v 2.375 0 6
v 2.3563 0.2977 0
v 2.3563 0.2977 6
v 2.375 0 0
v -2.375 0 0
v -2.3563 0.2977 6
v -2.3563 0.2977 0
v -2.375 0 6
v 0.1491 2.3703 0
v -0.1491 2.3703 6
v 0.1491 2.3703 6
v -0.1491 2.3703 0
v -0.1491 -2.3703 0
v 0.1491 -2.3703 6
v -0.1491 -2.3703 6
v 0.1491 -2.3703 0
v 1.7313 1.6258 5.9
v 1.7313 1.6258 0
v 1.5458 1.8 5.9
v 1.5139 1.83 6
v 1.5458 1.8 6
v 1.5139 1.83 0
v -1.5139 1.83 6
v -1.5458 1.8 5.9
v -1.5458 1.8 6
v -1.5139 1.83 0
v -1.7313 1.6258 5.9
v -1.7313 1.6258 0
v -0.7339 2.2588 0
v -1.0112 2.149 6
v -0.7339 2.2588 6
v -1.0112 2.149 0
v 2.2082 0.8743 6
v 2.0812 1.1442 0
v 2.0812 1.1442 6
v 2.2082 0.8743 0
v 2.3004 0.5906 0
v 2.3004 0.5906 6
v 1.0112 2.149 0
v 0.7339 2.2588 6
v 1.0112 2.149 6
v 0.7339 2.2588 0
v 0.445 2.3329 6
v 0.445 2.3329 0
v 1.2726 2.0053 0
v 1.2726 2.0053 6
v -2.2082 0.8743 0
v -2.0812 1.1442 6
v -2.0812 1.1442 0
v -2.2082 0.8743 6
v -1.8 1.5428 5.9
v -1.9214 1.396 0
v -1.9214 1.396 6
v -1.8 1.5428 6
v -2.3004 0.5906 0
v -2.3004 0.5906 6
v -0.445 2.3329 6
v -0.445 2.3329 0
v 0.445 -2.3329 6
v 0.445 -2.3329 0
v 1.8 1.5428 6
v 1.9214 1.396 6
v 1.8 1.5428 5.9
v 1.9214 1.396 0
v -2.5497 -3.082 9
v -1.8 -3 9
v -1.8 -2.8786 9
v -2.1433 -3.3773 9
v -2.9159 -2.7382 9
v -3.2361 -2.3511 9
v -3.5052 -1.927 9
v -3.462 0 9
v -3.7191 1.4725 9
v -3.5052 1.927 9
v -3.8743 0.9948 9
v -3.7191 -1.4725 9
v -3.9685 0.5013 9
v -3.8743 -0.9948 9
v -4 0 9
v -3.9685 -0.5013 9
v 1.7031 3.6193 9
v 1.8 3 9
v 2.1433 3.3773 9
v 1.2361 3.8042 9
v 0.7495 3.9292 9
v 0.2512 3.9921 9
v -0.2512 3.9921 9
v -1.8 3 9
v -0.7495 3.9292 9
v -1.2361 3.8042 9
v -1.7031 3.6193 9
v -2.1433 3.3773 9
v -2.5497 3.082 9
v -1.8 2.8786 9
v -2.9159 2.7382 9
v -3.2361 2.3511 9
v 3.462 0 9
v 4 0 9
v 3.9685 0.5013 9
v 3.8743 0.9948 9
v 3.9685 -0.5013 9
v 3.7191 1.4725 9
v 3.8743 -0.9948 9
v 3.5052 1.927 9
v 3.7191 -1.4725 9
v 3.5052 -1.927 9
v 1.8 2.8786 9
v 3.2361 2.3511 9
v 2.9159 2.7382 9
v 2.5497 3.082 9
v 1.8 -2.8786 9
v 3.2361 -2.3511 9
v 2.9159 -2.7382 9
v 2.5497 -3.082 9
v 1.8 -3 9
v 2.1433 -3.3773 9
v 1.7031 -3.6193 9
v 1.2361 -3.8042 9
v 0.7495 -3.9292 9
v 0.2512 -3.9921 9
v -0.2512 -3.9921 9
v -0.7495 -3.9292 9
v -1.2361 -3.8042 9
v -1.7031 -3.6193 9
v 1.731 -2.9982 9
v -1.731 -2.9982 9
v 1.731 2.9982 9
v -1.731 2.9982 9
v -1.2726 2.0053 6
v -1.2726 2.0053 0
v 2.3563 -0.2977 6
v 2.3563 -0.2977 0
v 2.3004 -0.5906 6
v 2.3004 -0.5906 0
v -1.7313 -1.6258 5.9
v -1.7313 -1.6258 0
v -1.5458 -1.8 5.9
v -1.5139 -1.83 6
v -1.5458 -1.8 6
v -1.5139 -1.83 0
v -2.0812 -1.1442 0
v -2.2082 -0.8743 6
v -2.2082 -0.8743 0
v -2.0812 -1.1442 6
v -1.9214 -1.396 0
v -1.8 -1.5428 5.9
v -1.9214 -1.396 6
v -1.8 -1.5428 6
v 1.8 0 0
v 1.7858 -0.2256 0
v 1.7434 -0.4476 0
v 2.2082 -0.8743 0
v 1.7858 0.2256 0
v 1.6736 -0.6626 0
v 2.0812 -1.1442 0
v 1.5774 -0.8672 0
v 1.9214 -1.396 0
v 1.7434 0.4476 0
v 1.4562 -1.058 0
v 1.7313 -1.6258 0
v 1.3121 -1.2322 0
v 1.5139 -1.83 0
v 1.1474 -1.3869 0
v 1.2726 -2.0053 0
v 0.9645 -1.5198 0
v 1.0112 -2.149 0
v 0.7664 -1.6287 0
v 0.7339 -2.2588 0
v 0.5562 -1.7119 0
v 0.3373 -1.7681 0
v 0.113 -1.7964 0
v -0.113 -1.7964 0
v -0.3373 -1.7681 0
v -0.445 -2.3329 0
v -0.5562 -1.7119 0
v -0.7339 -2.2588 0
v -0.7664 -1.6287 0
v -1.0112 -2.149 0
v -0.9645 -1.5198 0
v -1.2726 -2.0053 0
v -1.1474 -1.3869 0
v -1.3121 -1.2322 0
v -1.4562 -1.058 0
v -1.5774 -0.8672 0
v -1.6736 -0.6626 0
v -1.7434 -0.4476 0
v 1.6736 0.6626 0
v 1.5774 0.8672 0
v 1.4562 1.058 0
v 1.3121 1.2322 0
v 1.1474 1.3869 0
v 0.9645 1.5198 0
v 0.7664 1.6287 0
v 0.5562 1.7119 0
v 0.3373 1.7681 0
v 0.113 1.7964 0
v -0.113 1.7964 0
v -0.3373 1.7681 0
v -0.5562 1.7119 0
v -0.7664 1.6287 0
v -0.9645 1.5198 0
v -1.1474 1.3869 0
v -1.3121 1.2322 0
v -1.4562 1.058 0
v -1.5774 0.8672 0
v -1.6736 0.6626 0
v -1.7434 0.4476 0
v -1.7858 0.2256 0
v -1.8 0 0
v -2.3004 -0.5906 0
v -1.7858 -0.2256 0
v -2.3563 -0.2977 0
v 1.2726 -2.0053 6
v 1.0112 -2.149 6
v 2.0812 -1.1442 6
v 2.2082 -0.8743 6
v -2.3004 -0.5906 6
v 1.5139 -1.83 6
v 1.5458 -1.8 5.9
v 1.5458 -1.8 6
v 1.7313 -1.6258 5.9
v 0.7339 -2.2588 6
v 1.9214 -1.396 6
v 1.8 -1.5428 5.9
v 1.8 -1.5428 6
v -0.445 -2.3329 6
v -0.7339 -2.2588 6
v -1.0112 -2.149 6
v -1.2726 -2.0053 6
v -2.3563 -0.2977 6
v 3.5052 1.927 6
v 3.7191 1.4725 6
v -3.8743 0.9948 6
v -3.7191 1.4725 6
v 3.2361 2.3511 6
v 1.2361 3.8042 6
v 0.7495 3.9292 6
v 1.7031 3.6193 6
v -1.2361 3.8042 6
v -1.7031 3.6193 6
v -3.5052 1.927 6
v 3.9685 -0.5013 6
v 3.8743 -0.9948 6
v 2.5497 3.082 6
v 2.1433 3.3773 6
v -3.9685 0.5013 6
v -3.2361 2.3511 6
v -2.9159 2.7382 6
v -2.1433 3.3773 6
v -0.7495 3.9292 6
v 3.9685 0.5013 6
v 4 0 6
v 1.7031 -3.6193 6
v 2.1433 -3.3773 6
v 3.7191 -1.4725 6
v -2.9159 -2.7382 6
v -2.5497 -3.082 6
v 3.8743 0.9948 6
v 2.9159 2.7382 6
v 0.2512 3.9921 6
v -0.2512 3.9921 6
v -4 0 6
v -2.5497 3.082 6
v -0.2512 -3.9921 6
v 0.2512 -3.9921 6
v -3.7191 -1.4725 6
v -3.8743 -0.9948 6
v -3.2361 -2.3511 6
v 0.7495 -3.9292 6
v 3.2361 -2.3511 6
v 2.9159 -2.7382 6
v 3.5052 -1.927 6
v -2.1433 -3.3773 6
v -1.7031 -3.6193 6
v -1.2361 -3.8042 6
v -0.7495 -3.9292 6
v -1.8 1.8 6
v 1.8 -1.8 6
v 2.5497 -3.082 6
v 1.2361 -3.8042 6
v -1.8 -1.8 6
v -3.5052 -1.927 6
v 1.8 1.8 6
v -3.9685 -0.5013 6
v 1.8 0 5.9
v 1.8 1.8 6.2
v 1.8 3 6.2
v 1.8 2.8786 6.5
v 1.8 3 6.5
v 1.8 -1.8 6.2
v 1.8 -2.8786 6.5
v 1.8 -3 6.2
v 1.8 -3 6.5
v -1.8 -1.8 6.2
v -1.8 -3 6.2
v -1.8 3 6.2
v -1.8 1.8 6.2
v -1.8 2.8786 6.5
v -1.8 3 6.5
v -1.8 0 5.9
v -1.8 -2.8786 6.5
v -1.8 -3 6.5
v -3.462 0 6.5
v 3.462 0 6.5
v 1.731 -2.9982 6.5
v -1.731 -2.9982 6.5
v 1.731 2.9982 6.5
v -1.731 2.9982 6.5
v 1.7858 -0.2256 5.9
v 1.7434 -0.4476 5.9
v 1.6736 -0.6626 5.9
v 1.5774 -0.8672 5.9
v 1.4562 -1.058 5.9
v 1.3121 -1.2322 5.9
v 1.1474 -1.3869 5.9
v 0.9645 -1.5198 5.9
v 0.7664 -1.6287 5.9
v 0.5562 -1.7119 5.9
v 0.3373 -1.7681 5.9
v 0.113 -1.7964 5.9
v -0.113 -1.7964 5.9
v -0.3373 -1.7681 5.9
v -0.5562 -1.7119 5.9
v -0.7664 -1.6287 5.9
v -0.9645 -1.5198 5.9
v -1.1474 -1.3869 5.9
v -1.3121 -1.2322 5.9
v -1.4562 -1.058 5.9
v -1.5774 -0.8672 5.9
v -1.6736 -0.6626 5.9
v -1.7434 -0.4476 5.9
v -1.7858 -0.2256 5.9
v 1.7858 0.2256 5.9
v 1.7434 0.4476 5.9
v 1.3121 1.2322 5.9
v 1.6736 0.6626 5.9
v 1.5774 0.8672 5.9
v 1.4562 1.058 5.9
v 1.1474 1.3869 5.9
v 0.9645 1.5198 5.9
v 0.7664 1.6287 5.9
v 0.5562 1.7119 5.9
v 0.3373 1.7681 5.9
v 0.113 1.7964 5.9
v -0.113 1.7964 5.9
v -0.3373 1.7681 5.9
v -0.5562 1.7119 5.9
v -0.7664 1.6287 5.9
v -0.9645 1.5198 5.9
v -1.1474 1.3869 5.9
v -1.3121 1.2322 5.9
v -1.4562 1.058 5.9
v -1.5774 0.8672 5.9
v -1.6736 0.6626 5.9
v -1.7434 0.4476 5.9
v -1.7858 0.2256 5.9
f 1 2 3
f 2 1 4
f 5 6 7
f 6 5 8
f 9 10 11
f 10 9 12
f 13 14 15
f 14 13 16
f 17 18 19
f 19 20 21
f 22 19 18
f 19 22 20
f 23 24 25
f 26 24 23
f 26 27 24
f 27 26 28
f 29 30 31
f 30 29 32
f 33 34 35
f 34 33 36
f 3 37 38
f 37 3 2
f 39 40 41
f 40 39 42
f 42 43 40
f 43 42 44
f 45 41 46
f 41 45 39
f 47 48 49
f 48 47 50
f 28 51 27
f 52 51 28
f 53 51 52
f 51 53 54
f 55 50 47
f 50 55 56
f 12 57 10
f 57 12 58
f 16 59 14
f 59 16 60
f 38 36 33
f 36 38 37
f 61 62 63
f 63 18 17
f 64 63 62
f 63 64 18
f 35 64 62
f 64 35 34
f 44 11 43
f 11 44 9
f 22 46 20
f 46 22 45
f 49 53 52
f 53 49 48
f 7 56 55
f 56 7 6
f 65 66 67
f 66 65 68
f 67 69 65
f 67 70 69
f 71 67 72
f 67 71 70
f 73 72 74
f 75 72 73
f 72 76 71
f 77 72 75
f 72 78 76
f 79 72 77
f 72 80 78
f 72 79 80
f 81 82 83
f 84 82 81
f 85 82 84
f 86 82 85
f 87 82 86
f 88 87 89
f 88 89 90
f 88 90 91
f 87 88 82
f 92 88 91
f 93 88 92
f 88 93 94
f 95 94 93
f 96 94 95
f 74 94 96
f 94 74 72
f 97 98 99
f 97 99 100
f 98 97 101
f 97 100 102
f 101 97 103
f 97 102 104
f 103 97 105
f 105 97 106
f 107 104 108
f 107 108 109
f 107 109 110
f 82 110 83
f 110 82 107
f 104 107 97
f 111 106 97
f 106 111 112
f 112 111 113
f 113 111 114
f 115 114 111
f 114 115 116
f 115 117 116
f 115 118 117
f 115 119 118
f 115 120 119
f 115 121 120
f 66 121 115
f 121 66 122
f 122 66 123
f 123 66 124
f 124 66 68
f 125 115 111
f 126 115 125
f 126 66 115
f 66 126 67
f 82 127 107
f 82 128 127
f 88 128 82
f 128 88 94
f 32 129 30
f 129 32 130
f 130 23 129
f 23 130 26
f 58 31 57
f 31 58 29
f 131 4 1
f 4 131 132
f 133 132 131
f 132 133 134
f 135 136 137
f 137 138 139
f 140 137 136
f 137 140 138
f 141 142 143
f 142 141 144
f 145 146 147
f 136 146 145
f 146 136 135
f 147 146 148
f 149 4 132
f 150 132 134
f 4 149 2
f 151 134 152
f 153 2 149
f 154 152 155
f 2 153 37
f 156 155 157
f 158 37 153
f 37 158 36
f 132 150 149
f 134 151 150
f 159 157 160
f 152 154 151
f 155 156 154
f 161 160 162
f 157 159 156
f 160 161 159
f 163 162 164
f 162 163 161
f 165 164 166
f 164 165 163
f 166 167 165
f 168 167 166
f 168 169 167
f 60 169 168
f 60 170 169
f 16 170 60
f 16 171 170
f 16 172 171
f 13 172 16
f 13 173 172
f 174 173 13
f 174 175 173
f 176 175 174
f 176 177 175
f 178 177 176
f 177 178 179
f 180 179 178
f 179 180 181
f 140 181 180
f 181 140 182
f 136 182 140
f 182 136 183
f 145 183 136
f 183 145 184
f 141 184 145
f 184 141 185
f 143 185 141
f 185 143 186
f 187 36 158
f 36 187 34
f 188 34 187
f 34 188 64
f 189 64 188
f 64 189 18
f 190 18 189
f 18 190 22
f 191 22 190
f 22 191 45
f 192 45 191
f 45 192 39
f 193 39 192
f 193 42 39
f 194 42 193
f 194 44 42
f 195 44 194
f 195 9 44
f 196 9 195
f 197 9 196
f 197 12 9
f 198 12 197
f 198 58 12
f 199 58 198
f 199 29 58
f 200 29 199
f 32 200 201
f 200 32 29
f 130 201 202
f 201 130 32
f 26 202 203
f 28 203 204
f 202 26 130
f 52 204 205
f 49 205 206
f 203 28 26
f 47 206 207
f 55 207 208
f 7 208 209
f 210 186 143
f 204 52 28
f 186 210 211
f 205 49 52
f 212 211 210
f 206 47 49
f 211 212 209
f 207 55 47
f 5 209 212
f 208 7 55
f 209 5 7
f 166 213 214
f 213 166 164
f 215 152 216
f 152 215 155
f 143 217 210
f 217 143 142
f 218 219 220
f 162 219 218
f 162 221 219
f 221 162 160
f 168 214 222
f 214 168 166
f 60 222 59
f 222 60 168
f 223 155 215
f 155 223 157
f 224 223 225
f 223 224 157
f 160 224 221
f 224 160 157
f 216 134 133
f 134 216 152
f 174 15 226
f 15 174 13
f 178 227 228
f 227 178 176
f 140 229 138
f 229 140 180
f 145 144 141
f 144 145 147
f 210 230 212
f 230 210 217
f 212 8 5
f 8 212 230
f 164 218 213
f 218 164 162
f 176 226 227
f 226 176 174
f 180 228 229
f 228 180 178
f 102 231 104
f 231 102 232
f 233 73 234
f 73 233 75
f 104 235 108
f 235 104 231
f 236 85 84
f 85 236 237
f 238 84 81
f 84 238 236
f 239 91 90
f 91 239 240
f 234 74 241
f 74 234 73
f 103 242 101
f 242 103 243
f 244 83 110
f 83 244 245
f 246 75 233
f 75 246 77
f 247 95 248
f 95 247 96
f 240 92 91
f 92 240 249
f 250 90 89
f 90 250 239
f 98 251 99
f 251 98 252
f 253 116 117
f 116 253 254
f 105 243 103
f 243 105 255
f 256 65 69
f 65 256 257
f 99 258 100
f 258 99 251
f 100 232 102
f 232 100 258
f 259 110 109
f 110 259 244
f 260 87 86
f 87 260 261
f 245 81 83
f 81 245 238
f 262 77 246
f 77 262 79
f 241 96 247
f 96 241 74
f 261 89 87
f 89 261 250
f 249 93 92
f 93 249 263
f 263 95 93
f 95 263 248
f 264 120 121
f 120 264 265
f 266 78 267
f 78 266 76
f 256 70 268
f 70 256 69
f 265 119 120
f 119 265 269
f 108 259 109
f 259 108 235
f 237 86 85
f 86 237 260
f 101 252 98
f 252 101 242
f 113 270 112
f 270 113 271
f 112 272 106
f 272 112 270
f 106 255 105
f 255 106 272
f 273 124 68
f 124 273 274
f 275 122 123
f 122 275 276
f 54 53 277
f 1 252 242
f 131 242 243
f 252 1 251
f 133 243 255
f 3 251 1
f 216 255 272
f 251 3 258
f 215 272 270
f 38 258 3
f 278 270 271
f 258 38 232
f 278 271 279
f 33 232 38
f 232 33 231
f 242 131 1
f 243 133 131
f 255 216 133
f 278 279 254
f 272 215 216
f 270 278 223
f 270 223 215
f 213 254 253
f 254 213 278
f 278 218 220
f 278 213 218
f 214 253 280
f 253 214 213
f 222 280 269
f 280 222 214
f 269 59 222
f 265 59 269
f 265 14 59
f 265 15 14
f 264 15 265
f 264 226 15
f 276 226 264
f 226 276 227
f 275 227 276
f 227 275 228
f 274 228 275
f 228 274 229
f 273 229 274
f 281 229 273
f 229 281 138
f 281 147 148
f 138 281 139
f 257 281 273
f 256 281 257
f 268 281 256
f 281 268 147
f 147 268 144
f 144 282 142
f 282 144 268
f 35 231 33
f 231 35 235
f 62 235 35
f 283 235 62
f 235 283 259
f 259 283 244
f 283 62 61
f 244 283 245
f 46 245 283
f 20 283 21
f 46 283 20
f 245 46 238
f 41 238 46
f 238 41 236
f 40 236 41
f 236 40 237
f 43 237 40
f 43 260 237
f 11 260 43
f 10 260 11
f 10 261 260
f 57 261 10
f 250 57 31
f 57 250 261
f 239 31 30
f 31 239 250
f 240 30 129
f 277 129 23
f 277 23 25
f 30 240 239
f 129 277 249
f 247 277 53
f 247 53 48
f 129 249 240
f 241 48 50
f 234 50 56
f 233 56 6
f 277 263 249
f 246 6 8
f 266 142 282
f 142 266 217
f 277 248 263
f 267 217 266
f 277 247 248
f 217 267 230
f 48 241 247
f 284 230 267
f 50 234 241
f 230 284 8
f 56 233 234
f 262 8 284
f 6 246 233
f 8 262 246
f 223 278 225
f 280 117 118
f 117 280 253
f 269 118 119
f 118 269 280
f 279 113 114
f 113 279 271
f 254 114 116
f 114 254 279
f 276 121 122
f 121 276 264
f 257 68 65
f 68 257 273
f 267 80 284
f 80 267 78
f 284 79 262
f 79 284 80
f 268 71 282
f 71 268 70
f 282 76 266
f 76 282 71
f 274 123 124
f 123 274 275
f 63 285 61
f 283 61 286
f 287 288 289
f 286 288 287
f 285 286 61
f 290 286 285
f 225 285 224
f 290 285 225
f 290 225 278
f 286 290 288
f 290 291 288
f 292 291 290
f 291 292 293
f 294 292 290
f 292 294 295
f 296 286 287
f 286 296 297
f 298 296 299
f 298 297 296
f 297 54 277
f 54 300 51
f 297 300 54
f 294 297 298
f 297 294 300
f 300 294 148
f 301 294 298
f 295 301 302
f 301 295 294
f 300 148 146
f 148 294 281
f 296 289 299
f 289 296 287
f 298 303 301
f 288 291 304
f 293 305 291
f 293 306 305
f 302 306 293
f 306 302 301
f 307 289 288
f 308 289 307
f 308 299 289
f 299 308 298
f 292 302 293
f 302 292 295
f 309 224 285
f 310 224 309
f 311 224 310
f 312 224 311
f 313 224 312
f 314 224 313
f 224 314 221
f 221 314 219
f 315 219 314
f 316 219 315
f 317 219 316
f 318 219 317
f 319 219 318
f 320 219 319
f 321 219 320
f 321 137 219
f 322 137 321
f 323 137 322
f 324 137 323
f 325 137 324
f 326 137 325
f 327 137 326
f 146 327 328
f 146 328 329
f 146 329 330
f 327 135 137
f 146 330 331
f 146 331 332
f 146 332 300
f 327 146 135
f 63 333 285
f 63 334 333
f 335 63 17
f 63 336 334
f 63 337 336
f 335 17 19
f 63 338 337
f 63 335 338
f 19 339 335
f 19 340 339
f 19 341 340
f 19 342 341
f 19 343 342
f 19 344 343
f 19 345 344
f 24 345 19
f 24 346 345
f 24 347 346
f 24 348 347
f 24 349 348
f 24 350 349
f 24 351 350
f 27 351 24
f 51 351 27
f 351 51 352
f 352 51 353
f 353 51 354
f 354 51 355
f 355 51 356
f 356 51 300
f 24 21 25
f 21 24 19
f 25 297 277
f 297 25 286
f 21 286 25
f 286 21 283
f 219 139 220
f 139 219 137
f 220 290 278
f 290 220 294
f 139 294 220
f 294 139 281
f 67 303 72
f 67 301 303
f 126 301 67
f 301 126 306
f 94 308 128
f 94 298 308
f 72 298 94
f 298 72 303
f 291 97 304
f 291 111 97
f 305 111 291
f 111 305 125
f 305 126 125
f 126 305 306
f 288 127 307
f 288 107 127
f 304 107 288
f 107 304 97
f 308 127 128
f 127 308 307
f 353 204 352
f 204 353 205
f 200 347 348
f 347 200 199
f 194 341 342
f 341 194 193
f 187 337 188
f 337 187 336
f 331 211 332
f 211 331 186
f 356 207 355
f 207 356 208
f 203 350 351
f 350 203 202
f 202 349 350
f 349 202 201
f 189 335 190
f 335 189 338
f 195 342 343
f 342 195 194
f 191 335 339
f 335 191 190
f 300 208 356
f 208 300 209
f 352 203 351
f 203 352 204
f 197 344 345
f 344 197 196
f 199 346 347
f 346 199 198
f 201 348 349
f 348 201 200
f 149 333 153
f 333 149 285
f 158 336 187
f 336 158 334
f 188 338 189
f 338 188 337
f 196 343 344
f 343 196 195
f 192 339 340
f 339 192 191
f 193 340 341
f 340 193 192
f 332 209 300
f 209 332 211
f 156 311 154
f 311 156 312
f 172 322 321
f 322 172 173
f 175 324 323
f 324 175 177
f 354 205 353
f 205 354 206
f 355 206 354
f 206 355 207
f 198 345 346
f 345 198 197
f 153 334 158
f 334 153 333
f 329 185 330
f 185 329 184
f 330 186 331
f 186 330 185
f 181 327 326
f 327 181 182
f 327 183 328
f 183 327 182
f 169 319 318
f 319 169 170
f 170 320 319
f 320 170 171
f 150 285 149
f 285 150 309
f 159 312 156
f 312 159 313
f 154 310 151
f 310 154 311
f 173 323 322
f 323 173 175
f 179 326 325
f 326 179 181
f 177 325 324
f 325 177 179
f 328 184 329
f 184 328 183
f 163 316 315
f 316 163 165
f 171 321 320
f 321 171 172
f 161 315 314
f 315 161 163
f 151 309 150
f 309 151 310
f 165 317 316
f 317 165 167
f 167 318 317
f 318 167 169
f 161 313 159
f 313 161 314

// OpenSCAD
$fn = 50;


difference() {
	union() {
		cylinder(h = 9, r = 2.3750000000);
		translate(v = [0, 0, 6.0000000000]) {
			cylinder(h = 3, r = 4.0000000000);
		}
	}
	union() {
		translate(v = [0, 0, -3]) {
			rotate(a = [0, 180, 0]) {
				difference() {
					union() {
						translate(v = [0, 0, -12.0000000000]) {
							rotate(a = [0, 0, 0]) {
								difference() {
									union() {
										translate(v = [-1.8000000000, -3.0000000000, -0.3000000000]) {
											cube(size = [3.6000000000, 6.0000000000, 0.3000000000]);
										}
										translate(v = [-1.8000000000, -1.8000000000, -0.6000000000]) {
											cube(size = [3.6000000000, 3.6000000000, 0.3000000000]);
										}
										translate(v = [-1.8000000000, -3.0000000000, 2.5000000000]) {
											cube(size = [3.6000000000, 6.0000000000, 0.3000000000]);
										}
										translate(v = [-1.8000000000, -1.8000000000, 2.8000000000]) {
											cube(size = [3.6000000000, 3.6000000000, 0.3000000000]);
										}
										linear_extrude(height = 2.5000000000) {
											polygon(points = [[3.4620000000, 0.0000000000], [1.7310000000, 2.9981799479], [-1.7310000000, 2.9981799479], [-3.4620000000, 0.0000000000], [-1.7310000000, -2.9981799479], [1.7310000000, -2.9981799479]]);
										}
										translate(v = [-1.8000000000, -3.0000000000, -0.3000000000]) {
											cube(size = [3.6000000000, 6.0000000000, 0.3000000000]);
										}
										translate(v = [-1.8000000000, -1.8000000000, -0.6000000000]) {
											cube(size = [3.6000000000, 3.6000000000, 0.3000000000]);
										}
										translate(v = [-1.8000000000, -3.0000000000, 2.5000000000]) {
											cube(size = [3.6000000000, 6.0000000000, 0.3000000000]);
										}
										translate(v = [-1.8000000000, -1.8000000000, 2.8000000000]) {
											cube(size = [3.6000000000, 3.6000000000, 0.3000000000]);
										}
										translate(v = [-1.8000000000, -3.0000000000, -0.3000000000]) {
											cube(size = [3.6000000000, 6.0000000000, 0.3000000000]);
										}
										translate(v = [-1.8000000000, -1.8000000000, -0.6000000000]) {
											cube(size = [3.6000000000, 3.6000000000, 0.3000000000]);
										}
										translate(v = [-1.8000000000, -3.0000000000, 2.5000000000]) {
											cube(size = [3.6000000000, 6.0000000000, 0.3000000000]);
										}
										translate(v = [-1.8000000000, -1.8000000000, 2.8000000000]) {
											cube(size = [3.6000000000, 3.6000000000, 0.3000000000]);
										}
									}
									union();
								}
							}
						}
						translate(v = [0, 0, -12.0000000000]) {
							rotate(a = [0, 0, 0]) {
								difference() {
									union() {
										translate(v = [-1.8000000000, -3.0000000000, -0.3000000000]) {
											cube(size = [3.6000000000, 6.0000000000, 0.3000000000]);
										}
										translate(v = [-1.8000000000, -1.8000000000, -0.6000000000]) {
											cube(size = [3.6000000000, 3.6000000000, 0.3000000000]);
										}
										translate(v = [-1.8000000000, -3.0000000000, 2.5000000000]) {
											cube(size = [3.6000000000, 6.0000000000, 0.3000000000]);
										}
										translate(v = [-1.8000000000, -1.8000000000, 2.8000000000]) {
											cube(size = [3.6000000000, 3.6000000000, 0.3000000000]);
										}
										linear_extrude(height = 2.5000000000) {
											polygon(points = [[3.4620000000, 0.0000000000], [1.7310000000, 2.9981799479], [-1.7310000000, 2.9981799479], [-3.4620000000, 0.0000000000], [-1.7310000000, -2.9981799479], [1.7310000000, -2.9981799479]]);
										}
										translate(v = [-1.8000000000, -3.0000000000, -0.3000000000]) {
											cube(size = [3.6000000000, 6.0000000000, 0.3000000000]);
										}
										translate(v = [-1.8000000000, -1.8000000000, -0.6000000000]) {
											cube(size = [3.6000000000, 3.6000000000, 0.3000000000]);
										}
										translate(v = [-1.8000000000, -3.0000000000, 2.5000000000]) {
											cube(size = [3.6000000000, 6.0000000000, 0.3000000000]);
										}
										translate(v = [-1.8000000000, -1.8000000000, 2.8000000000]) {
											cube(size = [3.6000000000, 3.6000000000, 0.3000000000]);
										}
										translate(v = [-1.8000000000, -3.0000000000, -0.3000000000]) {
											cube(size = [3.6000000000, 6.0000000000, 0.3000000000]);
										}
										translate(v = [-1.8000000000, -1.8000000000, -0.6000000000]) {
											cube(size = [3.6000000000, 3.6000000000, 0.3000000000]);
										}
										translate(v = [-1.8000000000, -3.0000000000, 2.5000000000]) {
											cube(size = [3.6000000000, 6.0000000000, 0.3000000000]);
										}
										translate(v = [-1.8000000000, -1.8000000000, 2.8000000000]) {
											cube(size = [3.6000000000, 3.6000000000, 0.3000000000]);
										}
									}
									union();
								}
							}
						}
						translate(v = [0, 0, -12.0000000000]) {
							rotate(a = [0, 0, 0]) {
								difference() {
									union() {
										translate(v = [-1.8000000000, -3.0000000000, -0.3000000000]) {
											cube(size = [3.6000000000, 6.0000000000, 0.3000000000]);
										}
										translate(v = [-1.8000000000, -1.8000000000, -0.6000000000]) {
											cube(size = [3.6000000000, 3.6000000000, 0.3000000000]);
										}
										translate(v = [-1.8000000000, -3.0000000000, 2.5000000000]) {
											cube(size = [3.6000000000, 6.0000000000, 0.3000000000]);
										}
										translate(v = [-1.8000000000, -1.8000000000, 2.8000000000]) {
											cube(size = [3.6000000000, 3.6000000000, 0.3000000000]);
										}
										linear_extrude(height = 2.5000000000) {
											polygon(points = [[3.4620000000, 0.0000000000], [1.7310000000, 2.9981799479], [-1.7310000000, 2.9981799479], [-3.4620000000, 0.0000000000], [-1.7310000000, -2.9981799479], [1.7310000000, -2.9981799479]]);
										}
										translate(v = [-1.8000000000, -3.0000000000, -0.3000000000]) {
											cube(size = [3.6000000000, 6.0000000000, 0.3000000000]);
										}
										translate(v = [-1.8000000000, -1.8000000000, -0.6000000000]) {
											cube(size = [3.6000000000, 3.6000000000, 0.3000000000]);
										}
										translate(v = [-1.8000000000, -3.0000000000, 2.5000000000]) {
											cube(size = [3.6000000000, 6.0000000000, 0.3000000000]);
										}
										translate(v = [-1.8000000000, -1.8000000000, 2.8000000000]) {
											cube(size = [3.6000000000, 3.6000000000, 0.3000000000]);
										}
										translate(v = [-1.8000000000, -3.0000000000, -0.3000000000]) {
											cube(size = [3.6000000000, 6.0000000000, 0.3000000000]);
										}
										translate(v = [-1.8000000000, -1.8000000000, -0.6000000000]) {
											cube(size = [3.6000000000, 3.6000000000, 0.3000000000]);
										}
										translate(v = [-1.8000000000, -3.0000000000, 2.5000000000]) {
											cube(size = [3.6000000000, 6.0000000000, 0.3000000000]);
										}
										translate(v = [-1.8000000000, -1.8000000000, 2.8000000000]) {
											cube(size = [3.6000000000, 3.6000000000, 0.3000000000]);
										}
									}
									union();
								}
							}
						}
						translate(v = [0, 0, -12.0000000000]) {
							cylinder(h = 12, r = 1.5000000000);
						}
						translate(v = [0, 0, -1.9000000000]) {
							cylinder(h = 1.9000000000, r1 = 1.8000000000, r2 = 3.6000000000);
						}
						translate(v = [0, 0, -12.0000000000]) {
							cylinder(h = 12, r = 1.8000000000);
						}
						translate(v = [0, 0, -12.0000000000]) {
							cylinder(h = 12, r = 1.5000000000);
						}
					}
					union();
				}
			}
		}
		translate(v = [0, 0, -100.0000000000]) {
			cylinder(h = 200, r = 1.8000000000);
		}
	}
}
